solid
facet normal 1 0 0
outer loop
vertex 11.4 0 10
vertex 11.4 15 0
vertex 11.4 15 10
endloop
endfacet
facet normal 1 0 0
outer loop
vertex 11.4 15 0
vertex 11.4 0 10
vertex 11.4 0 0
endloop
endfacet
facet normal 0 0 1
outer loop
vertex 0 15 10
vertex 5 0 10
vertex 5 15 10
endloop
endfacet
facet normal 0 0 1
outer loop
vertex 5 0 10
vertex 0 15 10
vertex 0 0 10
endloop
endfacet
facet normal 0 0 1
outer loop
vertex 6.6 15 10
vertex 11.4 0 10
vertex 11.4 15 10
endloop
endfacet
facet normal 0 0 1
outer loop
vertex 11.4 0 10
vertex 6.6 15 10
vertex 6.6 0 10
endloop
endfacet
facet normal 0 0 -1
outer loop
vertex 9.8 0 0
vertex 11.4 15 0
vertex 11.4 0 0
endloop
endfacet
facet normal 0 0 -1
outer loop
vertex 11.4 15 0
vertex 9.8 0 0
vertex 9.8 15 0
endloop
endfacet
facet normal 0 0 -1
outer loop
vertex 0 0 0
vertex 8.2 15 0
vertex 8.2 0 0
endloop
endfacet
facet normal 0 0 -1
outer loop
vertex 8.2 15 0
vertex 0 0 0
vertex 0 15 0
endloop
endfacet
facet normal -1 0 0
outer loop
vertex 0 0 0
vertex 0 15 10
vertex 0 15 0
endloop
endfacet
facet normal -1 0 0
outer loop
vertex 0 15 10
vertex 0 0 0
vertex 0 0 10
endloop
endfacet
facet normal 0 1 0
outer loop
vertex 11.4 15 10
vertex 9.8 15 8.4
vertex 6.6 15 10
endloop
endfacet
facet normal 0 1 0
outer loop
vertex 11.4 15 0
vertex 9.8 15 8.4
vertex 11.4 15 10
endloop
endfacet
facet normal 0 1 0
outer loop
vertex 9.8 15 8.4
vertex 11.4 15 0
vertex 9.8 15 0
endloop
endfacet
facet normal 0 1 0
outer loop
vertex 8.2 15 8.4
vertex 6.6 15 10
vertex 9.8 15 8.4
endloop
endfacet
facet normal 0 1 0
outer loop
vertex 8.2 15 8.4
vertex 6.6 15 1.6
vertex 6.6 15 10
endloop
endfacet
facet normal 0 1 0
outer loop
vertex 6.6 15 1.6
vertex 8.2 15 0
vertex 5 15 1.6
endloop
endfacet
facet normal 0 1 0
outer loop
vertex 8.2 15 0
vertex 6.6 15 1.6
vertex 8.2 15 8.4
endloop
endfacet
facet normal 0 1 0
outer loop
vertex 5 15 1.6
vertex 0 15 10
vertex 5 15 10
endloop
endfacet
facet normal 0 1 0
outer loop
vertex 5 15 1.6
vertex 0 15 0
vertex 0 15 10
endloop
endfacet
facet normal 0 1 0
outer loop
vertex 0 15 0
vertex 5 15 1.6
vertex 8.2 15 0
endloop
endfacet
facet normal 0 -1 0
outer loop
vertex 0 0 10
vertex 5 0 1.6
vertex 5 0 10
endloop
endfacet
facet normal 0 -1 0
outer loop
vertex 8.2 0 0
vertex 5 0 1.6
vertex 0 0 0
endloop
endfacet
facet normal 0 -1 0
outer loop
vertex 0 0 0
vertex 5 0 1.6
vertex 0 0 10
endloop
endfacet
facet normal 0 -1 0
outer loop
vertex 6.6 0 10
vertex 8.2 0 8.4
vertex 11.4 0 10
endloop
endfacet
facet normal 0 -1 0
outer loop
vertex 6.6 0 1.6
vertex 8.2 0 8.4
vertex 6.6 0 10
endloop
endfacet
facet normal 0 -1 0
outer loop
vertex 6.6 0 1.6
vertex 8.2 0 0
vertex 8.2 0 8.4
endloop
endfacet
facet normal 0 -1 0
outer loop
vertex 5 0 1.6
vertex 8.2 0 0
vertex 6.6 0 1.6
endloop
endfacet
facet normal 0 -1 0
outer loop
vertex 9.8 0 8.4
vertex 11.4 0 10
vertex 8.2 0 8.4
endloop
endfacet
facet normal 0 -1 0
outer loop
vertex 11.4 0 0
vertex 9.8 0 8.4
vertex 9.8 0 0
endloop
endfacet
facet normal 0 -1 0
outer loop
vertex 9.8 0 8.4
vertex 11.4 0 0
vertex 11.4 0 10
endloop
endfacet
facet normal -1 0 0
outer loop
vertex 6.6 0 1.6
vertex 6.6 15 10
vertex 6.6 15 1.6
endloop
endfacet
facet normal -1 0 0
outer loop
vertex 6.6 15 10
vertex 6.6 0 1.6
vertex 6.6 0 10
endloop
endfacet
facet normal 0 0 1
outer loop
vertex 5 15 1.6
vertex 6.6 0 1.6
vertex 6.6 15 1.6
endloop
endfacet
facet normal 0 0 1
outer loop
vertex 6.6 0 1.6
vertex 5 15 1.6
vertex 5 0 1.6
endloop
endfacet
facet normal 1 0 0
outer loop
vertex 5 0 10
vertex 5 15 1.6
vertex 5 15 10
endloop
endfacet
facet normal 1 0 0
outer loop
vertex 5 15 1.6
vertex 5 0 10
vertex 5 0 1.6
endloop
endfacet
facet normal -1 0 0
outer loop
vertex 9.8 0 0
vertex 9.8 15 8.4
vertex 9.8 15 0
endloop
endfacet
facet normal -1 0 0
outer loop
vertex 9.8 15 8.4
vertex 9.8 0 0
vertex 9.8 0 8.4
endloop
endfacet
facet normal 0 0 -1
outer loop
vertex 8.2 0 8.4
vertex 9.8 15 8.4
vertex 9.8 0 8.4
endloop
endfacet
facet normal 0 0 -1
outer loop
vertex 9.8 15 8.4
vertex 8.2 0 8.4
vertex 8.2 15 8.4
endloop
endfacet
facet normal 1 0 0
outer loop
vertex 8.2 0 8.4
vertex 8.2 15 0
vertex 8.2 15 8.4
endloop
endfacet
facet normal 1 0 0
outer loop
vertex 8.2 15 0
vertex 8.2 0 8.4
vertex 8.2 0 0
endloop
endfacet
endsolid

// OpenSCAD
length = 15;
height = 10;
gap = 1.6;
width = 5 + gap * 4;
$fn = 128;

difference() {
  cube([width, length, height]);

  translate([5, -1, gap]) cube([gap, length * 2, height]);
  translate([5 + gap * 2, -1, -gap]) cube([gap, length * 2, height]);
}
